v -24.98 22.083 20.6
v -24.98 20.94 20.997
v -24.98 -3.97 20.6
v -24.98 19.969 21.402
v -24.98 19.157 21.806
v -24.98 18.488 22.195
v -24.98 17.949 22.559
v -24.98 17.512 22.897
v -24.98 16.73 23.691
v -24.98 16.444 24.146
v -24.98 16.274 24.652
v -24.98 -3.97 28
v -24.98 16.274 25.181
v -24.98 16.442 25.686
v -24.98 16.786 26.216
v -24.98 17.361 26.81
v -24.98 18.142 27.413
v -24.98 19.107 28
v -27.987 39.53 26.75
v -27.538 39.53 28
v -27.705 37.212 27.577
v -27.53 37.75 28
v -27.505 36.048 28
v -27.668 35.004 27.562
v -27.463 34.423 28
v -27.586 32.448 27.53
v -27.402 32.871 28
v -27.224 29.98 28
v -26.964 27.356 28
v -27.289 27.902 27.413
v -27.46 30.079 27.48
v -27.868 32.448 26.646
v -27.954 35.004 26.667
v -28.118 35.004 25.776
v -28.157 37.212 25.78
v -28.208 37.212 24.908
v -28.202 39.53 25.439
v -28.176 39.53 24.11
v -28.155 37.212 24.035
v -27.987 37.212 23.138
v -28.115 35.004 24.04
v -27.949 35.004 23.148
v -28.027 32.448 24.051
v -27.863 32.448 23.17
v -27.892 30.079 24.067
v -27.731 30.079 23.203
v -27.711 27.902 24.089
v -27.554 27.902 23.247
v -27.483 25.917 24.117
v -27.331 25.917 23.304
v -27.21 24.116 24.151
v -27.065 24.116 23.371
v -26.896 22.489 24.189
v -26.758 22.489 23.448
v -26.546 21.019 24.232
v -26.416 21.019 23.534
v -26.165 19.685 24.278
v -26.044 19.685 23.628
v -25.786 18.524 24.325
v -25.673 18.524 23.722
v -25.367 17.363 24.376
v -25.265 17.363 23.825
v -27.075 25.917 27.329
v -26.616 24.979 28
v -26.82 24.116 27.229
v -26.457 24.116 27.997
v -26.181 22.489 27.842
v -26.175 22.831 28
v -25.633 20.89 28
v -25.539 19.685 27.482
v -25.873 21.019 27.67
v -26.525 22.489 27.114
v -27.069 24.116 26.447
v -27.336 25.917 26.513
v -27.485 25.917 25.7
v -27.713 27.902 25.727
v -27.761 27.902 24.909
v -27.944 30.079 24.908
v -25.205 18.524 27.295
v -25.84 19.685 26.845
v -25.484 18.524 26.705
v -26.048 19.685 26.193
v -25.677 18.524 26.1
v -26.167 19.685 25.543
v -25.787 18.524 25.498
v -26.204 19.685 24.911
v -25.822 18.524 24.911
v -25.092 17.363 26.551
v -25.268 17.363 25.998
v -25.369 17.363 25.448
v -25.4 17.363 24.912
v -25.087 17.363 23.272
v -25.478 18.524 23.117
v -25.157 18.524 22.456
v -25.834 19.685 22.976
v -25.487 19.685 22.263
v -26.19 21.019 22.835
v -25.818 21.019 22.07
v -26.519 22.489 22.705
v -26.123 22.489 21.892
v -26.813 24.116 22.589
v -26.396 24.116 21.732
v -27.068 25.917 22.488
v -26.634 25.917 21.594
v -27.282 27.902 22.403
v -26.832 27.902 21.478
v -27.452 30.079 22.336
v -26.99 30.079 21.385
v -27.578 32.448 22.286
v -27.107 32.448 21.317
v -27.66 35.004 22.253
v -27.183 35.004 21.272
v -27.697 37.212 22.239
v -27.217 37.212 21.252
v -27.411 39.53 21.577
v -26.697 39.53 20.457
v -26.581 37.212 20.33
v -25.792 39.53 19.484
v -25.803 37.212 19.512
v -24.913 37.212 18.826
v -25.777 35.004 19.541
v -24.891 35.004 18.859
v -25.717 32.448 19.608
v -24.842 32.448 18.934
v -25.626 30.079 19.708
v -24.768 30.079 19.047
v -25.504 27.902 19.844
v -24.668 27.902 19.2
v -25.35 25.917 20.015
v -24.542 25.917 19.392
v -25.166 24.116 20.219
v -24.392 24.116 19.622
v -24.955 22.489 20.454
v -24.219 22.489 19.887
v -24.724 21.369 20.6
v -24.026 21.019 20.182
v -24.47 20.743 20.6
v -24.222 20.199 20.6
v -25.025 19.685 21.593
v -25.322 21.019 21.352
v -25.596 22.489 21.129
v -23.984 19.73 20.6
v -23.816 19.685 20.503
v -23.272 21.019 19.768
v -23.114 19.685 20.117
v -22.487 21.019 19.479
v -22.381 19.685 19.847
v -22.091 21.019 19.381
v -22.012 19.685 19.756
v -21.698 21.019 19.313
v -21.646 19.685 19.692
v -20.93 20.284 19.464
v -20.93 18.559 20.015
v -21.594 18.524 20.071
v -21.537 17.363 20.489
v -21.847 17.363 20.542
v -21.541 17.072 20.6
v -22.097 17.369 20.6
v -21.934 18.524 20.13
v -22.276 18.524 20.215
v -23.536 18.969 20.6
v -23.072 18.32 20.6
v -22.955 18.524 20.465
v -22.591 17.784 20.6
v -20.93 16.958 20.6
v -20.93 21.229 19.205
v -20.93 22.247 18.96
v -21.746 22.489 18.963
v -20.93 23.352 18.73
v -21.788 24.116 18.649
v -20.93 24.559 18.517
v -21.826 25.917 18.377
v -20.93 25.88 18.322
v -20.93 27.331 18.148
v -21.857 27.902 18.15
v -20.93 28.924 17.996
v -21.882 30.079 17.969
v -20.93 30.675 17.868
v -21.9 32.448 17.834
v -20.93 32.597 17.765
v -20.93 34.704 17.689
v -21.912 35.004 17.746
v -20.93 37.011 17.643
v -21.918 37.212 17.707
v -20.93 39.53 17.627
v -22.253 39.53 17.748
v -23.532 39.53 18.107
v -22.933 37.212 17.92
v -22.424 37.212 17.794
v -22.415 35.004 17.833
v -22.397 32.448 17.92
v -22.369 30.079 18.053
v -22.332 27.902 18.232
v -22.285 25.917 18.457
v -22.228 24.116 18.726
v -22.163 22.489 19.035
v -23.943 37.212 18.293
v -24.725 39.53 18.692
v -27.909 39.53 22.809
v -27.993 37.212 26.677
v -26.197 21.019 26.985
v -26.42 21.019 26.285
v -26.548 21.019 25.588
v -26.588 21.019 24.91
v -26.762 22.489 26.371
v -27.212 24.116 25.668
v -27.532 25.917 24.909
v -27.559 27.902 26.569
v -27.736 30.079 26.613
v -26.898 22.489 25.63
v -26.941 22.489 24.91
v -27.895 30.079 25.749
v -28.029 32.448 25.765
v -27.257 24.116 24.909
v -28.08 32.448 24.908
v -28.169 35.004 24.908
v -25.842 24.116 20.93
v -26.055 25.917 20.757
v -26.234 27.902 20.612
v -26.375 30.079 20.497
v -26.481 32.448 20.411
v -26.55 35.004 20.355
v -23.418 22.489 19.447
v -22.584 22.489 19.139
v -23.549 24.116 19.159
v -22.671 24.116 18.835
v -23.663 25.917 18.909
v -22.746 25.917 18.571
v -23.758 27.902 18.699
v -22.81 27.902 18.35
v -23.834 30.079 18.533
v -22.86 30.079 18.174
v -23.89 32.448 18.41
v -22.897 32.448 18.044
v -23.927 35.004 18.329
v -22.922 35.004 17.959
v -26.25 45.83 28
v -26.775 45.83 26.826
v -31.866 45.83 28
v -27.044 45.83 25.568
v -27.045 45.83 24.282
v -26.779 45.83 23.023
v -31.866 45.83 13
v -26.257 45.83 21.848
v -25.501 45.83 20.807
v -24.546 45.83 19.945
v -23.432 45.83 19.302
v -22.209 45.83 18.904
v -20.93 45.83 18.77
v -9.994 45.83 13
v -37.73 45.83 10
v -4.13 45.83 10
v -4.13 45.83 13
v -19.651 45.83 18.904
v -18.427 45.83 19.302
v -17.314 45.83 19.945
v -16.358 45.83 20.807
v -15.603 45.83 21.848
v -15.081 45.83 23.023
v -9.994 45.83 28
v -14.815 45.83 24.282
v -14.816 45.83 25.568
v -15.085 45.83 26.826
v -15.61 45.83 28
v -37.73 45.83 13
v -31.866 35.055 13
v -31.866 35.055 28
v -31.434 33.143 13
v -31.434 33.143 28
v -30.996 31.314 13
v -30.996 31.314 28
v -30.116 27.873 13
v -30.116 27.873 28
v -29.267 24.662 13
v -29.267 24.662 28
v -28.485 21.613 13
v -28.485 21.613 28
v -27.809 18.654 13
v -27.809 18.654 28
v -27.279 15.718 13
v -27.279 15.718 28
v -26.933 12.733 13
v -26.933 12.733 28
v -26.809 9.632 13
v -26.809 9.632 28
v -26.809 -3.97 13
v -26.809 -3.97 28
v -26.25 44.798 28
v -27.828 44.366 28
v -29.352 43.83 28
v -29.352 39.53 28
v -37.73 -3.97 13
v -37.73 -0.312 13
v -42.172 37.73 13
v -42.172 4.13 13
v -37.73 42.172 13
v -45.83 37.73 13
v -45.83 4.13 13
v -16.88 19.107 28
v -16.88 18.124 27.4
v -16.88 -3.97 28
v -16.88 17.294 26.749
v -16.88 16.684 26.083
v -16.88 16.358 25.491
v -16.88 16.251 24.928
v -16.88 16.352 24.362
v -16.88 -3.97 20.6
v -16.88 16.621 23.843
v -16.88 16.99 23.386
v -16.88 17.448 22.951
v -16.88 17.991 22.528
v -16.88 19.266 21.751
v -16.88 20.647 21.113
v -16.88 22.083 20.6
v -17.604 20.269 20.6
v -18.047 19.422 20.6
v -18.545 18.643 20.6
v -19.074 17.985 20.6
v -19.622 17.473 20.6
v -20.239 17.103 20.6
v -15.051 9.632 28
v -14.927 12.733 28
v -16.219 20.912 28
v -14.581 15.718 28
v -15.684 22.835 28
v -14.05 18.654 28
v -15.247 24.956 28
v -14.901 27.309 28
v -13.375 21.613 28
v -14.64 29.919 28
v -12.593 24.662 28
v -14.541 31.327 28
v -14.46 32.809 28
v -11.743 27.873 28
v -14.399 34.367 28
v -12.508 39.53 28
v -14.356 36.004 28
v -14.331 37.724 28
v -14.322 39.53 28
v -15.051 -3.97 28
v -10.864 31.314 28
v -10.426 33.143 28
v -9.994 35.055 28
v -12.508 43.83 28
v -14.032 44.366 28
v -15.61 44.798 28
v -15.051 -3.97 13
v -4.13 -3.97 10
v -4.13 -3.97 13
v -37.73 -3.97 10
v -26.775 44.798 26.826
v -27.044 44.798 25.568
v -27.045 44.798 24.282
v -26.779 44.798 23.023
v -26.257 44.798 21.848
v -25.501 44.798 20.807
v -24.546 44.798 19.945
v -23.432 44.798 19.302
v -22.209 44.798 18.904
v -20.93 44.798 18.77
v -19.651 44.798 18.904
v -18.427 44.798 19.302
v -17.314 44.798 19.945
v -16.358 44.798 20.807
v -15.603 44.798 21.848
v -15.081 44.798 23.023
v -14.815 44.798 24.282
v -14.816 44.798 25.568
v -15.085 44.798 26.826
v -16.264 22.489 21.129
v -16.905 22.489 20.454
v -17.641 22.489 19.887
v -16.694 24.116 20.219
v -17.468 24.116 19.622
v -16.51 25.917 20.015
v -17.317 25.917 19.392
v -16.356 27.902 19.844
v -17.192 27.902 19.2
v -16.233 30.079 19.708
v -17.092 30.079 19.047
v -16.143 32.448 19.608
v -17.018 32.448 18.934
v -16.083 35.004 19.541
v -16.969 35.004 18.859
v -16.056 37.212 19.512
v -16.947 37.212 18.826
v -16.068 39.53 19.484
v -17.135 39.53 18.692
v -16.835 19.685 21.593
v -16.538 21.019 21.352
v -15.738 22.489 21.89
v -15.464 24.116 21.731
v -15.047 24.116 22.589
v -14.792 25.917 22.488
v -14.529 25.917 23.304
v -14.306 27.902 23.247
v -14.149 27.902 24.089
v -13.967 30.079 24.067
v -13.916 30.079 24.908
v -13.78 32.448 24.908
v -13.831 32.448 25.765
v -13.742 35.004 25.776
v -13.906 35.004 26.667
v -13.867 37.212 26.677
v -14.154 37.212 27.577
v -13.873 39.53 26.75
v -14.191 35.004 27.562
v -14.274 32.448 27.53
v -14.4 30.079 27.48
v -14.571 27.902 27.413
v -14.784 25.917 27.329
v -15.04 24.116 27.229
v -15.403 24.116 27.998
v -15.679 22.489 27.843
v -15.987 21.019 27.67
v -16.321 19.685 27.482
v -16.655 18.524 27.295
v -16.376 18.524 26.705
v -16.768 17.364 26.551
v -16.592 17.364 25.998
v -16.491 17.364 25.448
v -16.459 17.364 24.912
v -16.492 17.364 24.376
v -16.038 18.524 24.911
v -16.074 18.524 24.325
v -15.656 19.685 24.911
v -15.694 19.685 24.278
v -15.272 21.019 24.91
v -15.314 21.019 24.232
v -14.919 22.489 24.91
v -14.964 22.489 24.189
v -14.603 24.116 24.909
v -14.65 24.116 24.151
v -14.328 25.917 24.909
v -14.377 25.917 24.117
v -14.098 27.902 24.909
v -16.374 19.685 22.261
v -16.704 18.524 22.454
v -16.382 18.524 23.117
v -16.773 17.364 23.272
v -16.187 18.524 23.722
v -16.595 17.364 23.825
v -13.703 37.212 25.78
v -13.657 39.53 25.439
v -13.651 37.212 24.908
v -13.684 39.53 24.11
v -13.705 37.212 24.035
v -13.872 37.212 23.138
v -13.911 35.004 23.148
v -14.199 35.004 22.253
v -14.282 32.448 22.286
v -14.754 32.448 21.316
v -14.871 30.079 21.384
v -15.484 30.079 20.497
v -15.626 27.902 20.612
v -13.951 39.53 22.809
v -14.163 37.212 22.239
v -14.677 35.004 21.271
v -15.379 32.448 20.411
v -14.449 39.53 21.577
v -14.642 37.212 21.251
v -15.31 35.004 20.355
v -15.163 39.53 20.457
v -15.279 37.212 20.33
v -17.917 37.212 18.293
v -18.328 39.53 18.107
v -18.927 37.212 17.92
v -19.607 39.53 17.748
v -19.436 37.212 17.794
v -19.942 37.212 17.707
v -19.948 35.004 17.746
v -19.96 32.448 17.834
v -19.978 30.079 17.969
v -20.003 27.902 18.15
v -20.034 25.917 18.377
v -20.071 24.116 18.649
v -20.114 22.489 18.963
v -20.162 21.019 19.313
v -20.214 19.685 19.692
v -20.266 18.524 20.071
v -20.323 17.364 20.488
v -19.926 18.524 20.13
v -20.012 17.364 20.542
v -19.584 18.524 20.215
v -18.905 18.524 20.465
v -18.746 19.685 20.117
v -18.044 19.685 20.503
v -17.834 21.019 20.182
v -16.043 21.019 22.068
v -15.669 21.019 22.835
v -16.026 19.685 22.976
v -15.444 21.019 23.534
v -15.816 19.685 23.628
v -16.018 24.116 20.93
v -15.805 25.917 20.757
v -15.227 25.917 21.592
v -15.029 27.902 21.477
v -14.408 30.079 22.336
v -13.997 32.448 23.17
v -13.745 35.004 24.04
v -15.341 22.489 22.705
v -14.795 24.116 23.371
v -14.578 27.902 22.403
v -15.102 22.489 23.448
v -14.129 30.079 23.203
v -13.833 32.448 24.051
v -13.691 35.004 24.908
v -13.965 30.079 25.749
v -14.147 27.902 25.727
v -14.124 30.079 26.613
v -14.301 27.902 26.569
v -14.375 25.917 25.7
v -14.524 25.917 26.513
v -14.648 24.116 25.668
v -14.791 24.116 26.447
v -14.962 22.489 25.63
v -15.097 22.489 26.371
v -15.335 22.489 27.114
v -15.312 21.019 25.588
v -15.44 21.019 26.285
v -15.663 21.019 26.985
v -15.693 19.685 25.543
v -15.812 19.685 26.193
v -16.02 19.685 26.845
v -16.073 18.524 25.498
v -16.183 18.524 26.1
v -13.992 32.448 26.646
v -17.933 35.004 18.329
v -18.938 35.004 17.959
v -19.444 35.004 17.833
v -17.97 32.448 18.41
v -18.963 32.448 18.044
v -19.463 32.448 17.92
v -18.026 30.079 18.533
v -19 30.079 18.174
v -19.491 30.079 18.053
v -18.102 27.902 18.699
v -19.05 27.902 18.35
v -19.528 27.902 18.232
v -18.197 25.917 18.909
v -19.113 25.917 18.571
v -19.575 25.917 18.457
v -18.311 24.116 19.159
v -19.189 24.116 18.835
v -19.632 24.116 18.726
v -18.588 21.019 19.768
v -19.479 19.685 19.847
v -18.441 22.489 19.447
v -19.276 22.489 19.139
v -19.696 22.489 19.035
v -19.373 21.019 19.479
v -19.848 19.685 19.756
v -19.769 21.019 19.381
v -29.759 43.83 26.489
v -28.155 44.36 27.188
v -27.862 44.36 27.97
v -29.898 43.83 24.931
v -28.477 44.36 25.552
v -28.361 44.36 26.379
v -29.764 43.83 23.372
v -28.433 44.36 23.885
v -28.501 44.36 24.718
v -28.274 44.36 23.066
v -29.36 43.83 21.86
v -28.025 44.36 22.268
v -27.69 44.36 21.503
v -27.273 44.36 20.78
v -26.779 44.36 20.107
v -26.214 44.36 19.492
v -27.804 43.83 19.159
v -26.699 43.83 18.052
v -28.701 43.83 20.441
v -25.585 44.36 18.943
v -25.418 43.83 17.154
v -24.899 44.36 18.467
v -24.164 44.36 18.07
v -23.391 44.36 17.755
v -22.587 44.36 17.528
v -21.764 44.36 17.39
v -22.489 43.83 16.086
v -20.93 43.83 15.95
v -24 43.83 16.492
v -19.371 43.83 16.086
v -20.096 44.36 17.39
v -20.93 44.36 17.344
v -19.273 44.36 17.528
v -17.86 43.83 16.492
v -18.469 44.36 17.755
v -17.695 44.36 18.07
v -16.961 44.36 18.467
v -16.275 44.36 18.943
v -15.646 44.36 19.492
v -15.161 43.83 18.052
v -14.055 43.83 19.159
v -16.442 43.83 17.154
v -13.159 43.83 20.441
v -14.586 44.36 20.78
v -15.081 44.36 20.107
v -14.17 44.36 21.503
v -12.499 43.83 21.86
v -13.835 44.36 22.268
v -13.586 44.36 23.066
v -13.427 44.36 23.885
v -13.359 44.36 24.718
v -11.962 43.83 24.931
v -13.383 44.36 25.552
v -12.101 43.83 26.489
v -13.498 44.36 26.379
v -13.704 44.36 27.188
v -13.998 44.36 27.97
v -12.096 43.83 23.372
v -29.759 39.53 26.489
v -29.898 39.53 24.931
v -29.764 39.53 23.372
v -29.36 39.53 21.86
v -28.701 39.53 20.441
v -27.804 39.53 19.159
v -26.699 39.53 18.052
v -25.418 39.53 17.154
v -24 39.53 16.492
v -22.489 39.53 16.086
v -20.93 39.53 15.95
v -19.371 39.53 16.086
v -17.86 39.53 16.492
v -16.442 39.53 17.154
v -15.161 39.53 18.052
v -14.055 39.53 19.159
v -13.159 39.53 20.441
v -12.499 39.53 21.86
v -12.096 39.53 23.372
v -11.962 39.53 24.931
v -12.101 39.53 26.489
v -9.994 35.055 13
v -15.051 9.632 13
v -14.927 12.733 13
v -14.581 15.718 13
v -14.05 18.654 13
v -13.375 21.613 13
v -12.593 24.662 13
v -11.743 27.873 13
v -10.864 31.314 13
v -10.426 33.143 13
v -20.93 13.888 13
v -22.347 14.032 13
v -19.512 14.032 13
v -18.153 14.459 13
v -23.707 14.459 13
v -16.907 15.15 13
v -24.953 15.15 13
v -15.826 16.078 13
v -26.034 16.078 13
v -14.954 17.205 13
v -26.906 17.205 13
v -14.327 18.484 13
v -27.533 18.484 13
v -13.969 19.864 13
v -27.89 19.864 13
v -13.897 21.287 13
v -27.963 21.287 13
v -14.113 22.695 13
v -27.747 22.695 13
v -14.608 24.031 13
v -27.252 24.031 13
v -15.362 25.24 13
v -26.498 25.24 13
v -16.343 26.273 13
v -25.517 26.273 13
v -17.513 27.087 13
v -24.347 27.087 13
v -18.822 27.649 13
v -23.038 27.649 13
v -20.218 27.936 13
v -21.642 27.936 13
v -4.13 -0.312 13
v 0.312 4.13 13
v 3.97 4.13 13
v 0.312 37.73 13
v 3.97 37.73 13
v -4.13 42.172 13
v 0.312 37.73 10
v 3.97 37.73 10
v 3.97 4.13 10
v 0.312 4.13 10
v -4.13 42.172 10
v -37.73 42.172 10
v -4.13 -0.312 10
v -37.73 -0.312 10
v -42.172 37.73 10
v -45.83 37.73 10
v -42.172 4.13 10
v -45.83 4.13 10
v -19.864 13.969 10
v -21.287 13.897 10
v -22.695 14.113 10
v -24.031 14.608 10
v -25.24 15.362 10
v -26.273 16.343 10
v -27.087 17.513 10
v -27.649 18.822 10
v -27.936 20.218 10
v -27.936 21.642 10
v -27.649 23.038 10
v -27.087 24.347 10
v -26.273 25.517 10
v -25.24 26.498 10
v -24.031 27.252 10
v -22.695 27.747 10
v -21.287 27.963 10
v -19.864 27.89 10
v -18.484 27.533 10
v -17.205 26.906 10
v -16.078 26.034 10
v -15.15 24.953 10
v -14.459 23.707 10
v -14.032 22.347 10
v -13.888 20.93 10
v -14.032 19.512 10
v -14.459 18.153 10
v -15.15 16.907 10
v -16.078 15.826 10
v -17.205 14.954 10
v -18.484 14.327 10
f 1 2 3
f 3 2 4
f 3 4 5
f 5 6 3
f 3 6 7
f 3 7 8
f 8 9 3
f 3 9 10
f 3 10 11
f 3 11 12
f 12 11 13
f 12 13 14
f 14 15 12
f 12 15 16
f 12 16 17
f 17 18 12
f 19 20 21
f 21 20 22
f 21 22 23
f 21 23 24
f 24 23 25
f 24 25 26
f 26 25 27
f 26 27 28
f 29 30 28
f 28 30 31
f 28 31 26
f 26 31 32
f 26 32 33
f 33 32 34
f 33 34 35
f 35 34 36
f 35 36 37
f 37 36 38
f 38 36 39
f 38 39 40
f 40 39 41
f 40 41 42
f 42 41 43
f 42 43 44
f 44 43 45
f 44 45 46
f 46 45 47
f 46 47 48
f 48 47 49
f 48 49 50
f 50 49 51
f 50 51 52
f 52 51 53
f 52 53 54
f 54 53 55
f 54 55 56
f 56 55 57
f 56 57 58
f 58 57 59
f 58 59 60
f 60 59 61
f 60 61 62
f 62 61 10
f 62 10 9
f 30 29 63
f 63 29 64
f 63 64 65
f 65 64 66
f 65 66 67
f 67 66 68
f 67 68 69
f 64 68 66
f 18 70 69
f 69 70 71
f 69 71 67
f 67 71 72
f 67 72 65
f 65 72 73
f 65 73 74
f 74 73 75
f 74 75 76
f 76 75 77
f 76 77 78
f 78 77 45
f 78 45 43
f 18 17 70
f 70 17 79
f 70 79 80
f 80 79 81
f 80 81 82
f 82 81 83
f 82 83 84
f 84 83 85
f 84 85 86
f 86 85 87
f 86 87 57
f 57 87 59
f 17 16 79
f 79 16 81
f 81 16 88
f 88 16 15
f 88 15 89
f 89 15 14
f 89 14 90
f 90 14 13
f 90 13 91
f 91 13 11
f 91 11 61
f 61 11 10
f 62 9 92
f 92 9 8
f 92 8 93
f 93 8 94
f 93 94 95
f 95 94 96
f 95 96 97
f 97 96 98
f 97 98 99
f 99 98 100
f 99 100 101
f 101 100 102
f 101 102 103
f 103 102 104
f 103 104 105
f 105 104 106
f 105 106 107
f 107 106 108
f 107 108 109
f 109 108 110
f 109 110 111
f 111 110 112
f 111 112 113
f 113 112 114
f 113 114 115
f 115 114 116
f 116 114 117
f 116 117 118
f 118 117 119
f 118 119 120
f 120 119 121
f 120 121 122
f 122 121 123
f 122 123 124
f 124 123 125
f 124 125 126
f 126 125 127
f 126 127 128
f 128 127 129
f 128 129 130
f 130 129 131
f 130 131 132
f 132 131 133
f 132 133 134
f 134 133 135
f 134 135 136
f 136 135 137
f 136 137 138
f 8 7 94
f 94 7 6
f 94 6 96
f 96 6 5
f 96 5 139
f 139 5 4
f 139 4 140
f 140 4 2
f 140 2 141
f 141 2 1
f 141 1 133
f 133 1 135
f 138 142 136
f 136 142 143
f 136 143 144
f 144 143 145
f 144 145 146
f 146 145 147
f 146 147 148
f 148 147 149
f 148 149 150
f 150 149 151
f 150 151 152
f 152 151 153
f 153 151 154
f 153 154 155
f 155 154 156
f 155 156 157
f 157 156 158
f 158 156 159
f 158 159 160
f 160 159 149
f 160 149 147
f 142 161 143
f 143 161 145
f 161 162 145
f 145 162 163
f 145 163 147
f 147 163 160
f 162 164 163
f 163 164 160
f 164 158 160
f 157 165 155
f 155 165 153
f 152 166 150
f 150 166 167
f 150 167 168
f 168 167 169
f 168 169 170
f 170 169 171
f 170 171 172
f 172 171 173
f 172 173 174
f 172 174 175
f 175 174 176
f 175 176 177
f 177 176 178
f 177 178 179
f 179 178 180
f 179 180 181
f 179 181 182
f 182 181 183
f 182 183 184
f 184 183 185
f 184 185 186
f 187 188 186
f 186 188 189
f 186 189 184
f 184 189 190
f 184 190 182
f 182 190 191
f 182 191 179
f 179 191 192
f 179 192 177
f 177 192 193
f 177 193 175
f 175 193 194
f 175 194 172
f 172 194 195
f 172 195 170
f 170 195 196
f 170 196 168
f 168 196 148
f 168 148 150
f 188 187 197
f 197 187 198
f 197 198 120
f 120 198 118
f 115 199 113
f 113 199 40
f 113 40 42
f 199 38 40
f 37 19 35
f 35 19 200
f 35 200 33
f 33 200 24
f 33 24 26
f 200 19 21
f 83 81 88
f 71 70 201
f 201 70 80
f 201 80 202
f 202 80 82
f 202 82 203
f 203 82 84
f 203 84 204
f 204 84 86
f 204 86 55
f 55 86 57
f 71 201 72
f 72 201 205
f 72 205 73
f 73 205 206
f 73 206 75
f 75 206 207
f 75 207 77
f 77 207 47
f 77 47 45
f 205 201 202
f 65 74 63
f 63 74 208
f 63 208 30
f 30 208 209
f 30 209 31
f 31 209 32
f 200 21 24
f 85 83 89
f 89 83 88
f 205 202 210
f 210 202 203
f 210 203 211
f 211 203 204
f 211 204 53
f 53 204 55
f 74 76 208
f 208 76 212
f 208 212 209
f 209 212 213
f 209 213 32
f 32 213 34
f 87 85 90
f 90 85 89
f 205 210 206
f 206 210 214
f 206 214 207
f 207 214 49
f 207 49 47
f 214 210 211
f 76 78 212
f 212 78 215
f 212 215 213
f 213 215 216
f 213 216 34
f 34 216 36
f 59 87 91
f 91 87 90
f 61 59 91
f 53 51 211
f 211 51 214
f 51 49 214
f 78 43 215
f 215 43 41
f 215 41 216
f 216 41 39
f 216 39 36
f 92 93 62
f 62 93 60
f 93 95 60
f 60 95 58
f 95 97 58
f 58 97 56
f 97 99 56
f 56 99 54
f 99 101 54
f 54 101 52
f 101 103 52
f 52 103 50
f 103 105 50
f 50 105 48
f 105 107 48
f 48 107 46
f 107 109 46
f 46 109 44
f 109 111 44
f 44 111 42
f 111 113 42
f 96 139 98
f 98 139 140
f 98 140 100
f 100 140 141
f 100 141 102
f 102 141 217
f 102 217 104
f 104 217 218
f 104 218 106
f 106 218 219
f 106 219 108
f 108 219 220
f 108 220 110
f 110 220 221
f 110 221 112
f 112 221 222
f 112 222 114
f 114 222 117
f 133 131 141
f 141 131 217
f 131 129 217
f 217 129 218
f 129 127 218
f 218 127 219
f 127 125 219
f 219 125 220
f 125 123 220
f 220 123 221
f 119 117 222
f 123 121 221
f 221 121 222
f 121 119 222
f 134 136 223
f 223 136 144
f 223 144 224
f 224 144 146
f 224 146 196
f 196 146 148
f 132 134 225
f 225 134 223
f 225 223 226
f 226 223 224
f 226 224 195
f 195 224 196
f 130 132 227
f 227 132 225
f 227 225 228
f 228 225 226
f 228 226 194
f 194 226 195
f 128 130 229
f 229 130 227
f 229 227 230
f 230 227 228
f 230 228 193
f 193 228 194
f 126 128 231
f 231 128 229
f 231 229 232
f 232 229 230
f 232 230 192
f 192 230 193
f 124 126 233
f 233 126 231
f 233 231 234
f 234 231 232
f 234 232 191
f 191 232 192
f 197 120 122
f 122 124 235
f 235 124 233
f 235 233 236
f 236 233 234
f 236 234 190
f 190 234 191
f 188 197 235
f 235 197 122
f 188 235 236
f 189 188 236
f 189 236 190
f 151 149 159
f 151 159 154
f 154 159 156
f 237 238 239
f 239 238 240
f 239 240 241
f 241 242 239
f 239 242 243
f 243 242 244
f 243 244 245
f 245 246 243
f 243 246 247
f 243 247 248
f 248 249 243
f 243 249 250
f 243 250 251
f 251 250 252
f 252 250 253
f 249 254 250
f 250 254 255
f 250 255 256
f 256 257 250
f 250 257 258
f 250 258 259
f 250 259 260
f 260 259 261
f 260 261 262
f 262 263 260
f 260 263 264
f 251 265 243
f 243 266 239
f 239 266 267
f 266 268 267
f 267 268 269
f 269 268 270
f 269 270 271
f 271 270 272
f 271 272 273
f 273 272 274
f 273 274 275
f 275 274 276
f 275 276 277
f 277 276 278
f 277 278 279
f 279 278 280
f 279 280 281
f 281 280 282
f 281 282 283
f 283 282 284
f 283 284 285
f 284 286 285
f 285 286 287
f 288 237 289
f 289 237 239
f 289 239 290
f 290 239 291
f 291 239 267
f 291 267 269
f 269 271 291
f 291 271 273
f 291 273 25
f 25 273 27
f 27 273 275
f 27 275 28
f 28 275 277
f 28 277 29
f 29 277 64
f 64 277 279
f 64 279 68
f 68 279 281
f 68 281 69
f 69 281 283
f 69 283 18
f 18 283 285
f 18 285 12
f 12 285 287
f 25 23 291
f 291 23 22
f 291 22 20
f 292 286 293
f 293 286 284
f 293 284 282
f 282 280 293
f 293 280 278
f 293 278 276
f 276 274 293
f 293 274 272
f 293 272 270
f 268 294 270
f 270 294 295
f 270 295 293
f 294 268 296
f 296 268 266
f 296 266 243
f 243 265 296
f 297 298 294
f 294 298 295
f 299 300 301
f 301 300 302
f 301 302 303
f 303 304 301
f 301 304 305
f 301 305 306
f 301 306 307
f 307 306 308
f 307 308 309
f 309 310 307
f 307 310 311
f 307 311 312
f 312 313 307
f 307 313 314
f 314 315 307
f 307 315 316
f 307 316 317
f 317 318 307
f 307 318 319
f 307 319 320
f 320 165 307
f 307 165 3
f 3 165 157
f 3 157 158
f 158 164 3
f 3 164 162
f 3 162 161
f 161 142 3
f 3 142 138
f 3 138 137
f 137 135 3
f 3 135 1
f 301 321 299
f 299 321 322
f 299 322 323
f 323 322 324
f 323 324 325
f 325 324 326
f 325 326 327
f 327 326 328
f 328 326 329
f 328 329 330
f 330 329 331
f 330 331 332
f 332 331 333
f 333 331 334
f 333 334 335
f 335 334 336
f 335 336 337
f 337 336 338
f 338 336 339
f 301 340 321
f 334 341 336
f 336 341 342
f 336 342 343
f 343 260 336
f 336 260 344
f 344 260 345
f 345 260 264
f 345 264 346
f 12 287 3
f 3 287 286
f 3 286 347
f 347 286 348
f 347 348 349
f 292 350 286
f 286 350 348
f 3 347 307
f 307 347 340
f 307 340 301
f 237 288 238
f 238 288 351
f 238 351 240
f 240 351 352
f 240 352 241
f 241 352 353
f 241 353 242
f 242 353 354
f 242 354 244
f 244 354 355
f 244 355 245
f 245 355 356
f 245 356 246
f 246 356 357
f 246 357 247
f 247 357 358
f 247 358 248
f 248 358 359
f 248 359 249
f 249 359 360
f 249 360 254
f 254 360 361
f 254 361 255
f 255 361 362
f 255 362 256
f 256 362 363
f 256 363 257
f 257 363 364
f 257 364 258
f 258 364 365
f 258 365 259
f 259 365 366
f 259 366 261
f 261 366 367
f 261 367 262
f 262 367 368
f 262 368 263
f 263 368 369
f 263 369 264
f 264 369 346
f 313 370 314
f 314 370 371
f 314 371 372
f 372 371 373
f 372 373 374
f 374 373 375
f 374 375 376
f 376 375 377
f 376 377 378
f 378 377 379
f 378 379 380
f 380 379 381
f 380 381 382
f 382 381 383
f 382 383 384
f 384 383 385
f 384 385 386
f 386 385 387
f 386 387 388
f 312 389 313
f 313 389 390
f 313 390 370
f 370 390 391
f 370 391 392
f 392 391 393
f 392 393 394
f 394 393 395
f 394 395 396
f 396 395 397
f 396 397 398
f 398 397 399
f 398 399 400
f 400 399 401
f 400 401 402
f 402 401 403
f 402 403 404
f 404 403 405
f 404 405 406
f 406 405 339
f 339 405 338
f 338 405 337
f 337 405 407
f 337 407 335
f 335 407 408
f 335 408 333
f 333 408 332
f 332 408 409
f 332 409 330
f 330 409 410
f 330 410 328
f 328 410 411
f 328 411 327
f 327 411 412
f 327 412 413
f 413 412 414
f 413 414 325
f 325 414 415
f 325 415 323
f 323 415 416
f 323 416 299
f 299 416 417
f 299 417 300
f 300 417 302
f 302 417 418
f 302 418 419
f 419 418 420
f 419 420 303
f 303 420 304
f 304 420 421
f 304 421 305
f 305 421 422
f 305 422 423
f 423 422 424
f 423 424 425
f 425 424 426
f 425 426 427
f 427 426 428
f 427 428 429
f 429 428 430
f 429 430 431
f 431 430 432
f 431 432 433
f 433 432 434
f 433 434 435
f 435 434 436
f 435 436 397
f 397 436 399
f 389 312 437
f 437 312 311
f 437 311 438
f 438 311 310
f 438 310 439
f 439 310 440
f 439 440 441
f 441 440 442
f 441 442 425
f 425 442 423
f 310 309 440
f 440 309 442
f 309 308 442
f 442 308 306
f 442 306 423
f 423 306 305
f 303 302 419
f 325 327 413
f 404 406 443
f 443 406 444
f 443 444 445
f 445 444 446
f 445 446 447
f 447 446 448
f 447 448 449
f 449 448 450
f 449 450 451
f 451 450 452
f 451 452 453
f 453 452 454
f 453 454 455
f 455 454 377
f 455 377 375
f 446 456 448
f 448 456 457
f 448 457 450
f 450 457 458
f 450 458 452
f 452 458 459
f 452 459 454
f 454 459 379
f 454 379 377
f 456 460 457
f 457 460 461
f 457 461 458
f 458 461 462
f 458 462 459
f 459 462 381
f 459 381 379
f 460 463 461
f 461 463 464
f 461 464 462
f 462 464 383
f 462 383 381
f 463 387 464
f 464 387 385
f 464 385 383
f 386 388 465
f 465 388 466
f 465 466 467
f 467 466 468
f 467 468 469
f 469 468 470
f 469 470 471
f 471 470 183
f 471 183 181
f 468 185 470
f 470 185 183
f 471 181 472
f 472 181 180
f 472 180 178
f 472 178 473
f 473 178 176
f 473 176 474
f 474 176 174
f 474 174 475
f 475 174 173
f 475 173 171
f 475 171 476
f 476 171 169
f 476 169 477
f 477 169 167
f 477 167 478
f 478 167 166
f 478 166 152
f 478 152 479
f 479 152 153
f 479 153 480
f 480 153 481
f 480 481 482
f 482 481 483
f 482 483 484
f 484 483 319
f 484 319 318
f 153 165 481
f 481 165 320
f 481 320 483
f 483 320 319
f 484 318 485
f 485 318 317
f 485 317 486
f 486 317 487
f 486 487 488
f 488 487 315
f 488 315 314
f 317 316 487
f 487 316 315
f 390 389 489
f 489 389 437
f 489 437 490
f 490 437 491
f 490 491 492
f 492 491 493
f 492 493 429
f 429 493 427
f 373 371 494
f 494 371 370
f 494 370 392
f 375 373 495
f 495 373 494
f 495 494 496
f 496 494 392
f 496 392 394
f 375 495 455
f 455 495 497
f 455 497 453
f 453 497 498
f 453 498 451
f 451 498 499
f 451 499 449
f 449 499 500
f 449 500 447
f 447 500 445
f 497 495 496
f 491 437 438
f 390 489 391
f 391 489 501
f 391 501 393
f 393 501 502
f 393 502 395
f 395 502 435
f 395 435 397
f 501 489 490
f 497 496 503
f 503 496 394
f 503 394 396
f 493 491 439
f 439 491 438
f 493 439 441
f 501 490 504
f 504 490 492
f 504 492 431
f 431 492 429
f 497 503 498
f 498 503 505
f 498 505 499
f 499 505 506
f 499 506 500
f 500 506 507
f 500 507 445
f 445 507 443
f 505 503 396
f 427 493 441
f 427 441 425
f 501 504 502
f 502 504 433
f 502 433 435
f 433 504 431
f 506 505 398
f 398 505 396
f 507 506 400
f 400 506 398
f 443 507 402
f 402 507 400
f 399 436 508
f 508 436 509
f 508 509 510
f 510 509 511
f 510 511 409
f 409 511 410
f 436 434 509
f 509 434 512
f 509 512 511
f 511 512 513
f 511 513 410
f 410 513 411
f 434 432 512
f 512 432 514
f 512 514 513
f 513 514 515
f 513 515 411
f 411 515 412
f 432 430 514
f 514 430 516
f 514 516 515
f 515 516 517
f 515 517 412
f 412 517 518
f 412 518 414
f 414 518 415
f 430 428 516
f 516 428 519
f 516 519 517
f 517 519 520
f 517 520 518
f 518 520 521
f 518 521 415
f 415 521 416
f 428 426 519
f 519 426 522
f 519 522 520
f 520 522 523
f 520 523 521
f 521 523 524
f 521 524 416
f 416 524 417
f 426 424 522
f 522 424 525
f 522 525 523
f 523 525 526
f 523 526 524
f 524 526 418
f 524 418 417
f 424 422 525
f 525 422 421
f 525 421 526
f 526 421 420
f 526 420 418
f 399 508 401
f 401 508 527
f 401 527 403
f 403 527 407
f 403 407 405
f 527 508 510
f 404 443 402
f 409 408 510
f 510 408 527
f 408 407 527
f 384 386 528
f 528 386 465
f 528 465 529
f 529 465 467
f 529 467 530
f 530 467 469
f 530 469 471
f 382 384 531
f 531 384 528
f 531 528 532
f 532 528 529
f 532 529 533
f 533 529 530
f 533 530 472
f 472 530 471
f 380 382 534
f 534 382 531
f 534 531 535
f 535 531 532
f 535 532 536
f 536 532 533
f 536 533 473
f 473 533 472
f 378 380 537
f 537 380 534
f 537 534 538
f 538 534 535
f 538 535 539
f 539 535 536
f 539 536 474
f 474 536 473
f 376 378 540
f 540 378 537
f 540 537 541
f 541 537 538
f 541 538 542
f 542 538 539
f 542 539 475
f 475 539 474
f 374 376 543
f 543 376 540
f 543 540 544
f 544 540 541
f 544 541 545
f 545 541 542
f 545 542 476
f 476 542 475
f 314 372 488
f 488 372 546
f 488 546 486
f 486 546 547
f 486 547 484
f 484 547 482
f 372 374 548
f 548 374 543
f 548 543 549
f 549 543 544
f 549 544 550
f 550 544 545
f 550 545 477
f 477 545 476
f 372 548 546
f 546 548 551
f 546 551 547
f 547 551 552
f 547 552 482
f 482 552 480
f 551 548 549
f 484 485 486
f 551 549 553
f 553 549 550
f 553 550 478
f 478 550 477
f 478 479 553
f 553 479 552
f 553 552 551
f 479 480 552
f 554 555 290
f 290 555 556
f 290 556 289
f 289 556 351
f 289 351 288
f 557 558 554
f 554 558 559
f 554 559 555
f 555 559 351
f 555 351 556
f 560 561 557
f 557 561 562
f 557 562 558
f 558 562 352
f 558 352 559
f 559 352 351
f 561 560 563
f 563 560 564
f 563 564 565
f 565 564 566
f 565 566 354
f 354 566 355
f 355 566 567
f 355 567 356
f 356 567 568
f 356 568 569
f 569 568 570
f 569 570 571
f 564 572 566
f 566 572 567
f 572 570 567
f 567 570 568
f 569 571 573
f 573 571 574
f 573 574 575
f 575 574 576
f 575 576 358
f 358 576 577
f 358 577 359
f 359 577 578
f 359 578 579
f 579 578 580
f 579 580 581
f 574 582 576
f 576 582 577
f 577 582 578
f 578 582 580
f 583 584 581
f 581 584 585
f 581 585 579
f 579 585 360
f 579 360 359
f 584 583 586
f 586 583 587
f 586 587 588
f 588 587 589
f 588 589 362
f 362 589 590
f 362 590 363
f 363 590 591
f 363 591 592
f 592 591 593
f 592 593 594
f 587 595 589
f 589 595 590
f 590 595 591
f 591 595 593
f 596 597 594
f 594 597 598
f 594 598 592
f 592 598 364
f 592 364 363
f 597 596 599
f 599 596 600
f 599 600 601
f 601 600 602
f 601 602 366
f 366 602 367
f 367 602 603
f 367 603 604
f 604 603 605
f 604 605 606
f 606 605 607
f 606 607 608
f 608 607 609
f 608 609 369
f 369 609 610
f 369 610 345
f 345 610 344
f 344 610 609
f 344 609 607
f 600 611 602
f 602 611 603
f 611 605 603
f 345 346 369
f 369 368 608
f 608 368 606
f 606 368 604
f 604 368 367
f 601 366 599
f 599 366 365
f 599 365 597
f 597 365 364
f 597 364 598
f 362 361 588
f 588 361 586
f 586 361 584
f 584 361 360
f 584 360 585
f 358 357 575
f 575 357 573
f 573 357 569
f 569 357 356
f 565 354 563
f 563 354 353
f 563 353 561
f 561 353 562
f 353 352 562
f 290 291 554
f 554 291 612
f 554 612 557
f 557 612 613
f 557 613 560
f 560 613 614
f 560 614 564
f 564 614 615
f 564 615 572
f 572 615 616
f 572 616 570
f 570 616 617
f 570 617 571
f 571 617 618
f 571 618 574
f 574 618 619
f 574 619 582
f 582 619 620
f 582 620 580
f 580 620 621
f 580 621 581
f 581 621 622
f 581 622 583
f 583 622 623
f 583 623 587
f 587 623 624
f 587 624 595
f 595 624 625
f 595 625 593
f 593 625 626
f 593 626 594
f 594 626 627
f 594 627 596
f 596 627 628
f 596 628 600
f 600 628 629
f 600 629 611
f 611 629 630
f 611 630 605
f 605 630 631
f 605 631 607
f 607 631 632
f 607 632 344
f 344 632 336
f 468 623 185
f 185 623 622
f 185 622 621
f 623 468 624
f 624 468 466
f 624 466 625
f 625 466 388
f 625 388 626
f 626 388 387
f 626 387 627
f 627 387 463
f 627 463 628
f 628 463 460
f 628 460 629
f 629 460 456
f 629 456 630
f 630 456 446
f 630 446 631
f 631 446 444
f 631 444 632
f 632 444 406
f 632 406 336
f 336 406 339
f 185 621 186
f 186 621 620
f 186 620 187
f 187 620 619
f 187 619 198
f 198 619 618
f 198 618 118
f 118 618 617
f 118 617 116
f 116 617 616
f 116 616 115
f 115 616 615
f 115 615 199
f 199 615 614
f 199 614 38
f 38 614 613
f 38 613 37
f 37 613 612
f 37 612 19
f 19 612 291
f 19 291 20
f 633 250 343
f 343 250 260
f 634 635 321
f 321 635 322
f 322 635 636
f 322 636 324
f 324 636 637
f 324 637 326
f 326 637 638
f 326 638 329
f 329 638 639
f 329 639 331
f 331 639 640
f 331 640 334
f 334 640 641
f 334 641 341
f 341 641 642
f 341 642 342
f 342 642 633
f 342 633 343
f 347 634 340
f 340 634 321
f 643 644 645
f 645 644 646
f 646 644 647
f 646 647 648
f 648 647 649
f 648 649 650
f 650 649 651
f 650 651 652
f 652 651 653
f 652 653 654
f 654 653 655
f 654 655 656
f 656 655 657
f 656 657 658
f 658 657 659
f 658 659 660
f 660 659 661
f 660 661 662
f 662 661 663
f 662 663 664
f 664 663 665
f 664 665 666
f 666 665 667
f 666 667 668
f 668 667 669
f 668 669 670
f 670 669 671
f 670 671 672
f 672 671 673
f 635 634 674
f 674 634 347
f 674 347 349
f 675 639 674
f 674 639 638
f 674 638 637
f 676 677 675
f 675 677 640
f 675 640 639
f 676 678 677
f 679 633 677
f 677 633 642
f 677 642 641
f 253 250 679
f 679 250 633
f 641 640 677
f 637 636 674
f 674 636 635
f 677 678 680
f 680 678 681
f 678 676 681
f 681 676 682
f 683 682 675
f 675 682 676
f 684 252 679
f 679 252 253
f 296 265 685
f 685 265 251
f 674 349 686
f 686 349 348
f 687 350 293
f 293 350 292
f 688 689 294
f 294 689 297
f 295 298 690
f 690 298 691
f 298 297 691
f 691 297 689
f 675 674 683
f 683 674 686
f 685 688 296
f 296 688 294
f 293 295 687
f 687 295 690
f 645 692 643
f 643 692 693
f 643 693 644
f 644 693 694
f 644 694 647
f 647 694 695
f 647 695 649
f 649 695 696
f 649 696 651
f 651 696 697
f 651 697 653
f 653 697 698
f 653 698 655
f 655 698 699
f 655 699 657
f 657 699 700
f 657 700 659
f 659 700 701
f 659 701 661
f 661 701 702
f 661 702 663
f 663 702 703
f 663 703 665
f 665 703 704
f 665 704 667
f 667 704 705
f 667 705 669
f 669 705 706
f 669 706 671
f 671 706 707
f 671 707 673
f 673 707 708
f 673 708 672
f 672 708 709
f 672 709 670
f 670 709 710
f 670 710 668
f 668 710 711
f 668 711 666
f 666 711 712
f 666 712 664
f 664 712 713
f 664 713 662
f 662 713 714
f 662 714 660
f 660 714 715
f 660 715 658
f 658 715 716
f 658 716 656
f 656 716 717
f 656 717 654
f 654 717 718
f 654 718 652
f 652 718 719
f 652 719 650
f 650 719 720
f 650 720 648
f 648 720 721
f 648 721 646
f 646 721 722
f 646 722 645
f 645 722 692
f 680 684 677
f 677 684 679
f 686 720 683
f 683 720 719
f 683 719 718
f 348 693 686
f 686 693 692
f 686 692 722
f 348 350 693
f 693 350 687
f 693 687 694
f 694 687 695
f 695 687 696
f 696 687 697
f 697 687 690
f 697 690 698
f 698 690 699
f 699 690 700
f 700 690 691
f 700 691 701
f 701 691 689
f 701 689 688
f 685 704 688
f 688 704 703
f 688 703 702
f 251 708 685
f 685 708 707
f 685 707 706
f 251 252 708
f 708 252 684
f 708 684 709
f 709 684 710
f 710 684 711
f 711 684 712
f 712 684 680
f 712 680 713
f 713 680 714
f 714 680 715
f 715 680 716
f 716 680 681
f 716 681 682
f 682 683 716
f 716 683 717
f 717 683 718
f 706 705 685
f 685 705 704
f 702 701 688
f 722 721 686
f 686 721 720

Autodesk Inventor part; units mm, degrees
ref_plane "YZ Plane" through (0, 0, 0) normal (1, 0, 0) x (0, 1, 0)
ref_plane "Work Plane1" through (0, 0, 10) normal (0, 0, 1) x (1, 0, 0)
sketch "Sketch1" plane through (0, 0, 10) normal (0, 0, 1) x (1, 0, 0)
  line L0 (-4.0299, -0.3538) -> (-2.2322, 1.4439) construction
  arc A0 (-1.4439, 2.2322) -> (-2.2322, 1.4439) centre (-0.9299, 0.9299) ccw construction
  line L1 (-1.4439, 2.2322) -> (0.3538, 4.0299) construction
  line L2 (-37.8299, 42.2137) -> (-37.8299, 45.8299) construction
  line L3 (-37.8299, 45.8299) -> (-4.0299, 45.8299) construction
  line L4 (-4.0299, 45.8299) -> (-4.0299, 42.2137) construction
  line L5 (-4.0299, 4.0299) -> (0.3538, 4.0299) projected
  circle A1 centre (-20.9299, 20.9299) radius 17.5 projected
  line L6 (-20.9299, 58.9723) -> (17.1124, 20.9299) construction
  line L7 (17.1124, 20.9299) -> (-20.9299, -17.1124) construction
  line L8 (-20.9299, -17.1124) -> (-58.9723, 20.9299) construction
  line L9 (-58.9723, 20.9299) -> (-20.9299, 58.9723) construction
  line L10 (-20.9299, 58.9723) -> (-20.9299, -17.1124) construction
  line L11 (17.1124, 20.9299) -> (-58.9723, 20.9299) construction
  line L12 (-20.9299, 58.9723) -> (32.8701, 58.9723) construction
  line L13 (-43.4299, 43.4299) -> (1.5701, 43.4299) construction
  line L14 (1.5701, 43.4299) -> (1.5701, -1.5701) construction
  line L15 (1.5701, -1.5701) -> (-43.4299, -1.5701) construction
  line L16 (-43.4299, -1.5701) -> (-43.4299, 43.4299) construction
  line L17 (-43.4299, 43.4299) -> (1.5701, -1.5701) construction
  line L18 (1.5701, 43.4299) -> (-43.4299, -1.5701) construction
  line L19 (-43.4299, 5.3876) -> (-43.4299, 36.4723)
  line L20 (-43.4299, 36.4723) -> (-36.4723, 43.4299)
  line L21 (-36.4723, 43.4299) -> (-5.3876, 43.4299)
  line L22 (-5.3876, 43.4299) -> (1.5701, 36.4723)
  line L23 (1.5701, 36.4723) -> (1.5701, 5.3876)
  line L24 (1.5701, 5.3876) -> (-5.3876, -1.5701)
  line L25 (-5.3876, -1.5701) -> (-36.4723, -1.5701)
  line L26 (-36.4723, -1.5701) -> (-43.4299, 5.3876)
  line L27 (-4.0299, 42.2137) -> (-37.8299, 42.2137) projected
  line L28 (-4.0299, -0.3538) -> (-4.0299, 4.0299) projected
  circle A2 centre (-20.9299, 20.9299) radius 7.0417
  point P0 (-37.8299, 4.0299)
  dimension "d18" = 53.8
  dimension "d19" = 45
  dimension "d20" = 53.8
  dimension "d21" = 45
  dimension "d22" = 45
extrude "Extrusion1" add sketch "Sketch1" along normal blind 3 contours L28 L24 L25 L26 L19 L20 L27 L22 L23 L5 | L5 L24 L28 | L27 L20 L21 L22 | A1
sketch "Sketch3" plane through (0, 0, 10) normal (0, 0, -1) x (-1, 0, 0)
  line L0 (37.8299, -0.4701) -> (37.8299, 4.0299) construction
  line L1 (4.0299, 4.0299) -> (4.0299, -0.4701) construction
  line L2 (37.8299, -0.4701) -> (37.8299, 1.1886) construction
  line L3 (4.0299, -3.9701) -> (4.0299, -0.3538) construction
  line L4 (45.8299, 4.0299) -> (42.2137, 4.0299) construction
  line L5 (-0.3538, 4.0299) -> (-3.9701, 4.0299) construction
  line L6 (-3.9701, 37.8299) -> (-0.3538, 37.8299) construction
  line L7 (4.0299, 42.2137) -> (4.0299, 45.8299) construction
  line L8 (37.8299, 45.8299) -> (37.8299, 42.2137) construction
  line L9 (42.2137, 37.8299) -> (45.8299, 37.8299) construction
  line L10 (37.8299, 37.7299) -> (45.8299, 37.7299)
  line L11 (45.8299, 37.7299) -> (45.8299, 4.1299)
  line L12 (45.8299, 4.1299) -> (37.8299, 4.1299)
  line L13 (37.8299, 4.1299) -> (37.8299, 37.7299)
  line L14 (37.7299, 4.0299) -> (4.1299, 4.0299)
  line L15 (4.1299, 4.0299) -> (4.1299, -3.9701)
  line L16 (4.1299, -3.9701) -> (37.7299, -3.9701)
  line L17 (37.7299, -3.9701) -> (37.7299, 4.0299)
  line L18 (4.0299, 4.1299) -> (-3.9701, 4.1299)
  line L19 (-3.9701, 4.1299) -> (-3.9701, 37.7299)
  line L20 (-3.9701, 37.7299) -> (4.0299, 37.7299)
  line L21 (4.0299, 37.7299) -> (4.0299, 4.1299)
  line L22 (4.1299, 37.8299) -> (37.7299, 37.8299)
  line L23 (37.7299, 37.8299) -> (37.7299, 45.8299)
  line L24 (37.7299, 45.8299) -> (4.1299, 45.8299)
  line L25 (4.1299, 45.8299) -> (4.1299, 37.8299)
  point P0 (0, 0)
  dimension "d23" = 0.1
  dimension "d24" = 0.1
  dimension "d25" = 0.1
  dimension "d26" = 0.1
  dimension "d27" = 0.1
extrude "Extrusion3" add sketch "Sketch3" against normal up to surface (3 mm away)
ref_plane "Work Plane4" through (-20.9299, 20.9299, 36.9) normal (-1, 0, 0) x (0, 1, 0)
sketch "Sketch11" plane through (-20.9299, 20.9299, 36.9) normal (-1, 0, 0) x (0, 1, 0)
  point P0 (-20.9299, 36.9)
sketch "Sketch12" plane through (0, 0, 13) normal (0, 0, 1) x (1, 0, 0)
  line L0 (-11.9799, 39.5299) -> (-11.9799, 43.8299) construction
  line L1 (-17.0799, -2.9701) -> (-17.0799, 2.0299) construction
  line L2 (-37.7299, 45.8299) -> (-4.1299, 45.8299) projected
  line L3 (-20.9299, 45.8299) -> (-20.9299, -3.9701)
  line L4 (-4.1299, -3.9701) -> (-37.7299, -3.9701) projected
  line L5 (-20.9299, -3.9701) -> (-15.0511, -3.9701)
  line L6 (-15.0511, -3.9701) -> (-15.0511, 9.6316)
  line L7 (-20.9299, 45.8299) -> (-9.9943, 45.8299)
  line L8 (-9.9943, 45.8299) -> (-9.9943, 35.0551)
  line L9 (-9.9943, 35.0551) -> (-12.2675, 24.6166) construction
  line L10 (-12.2675, 24.6166) -> (-15.0511, 18.1216) construction
  line L11 (-15.0511, 18.1216) -> (-15.0511, 9.6316) construction
  spline S0 degree 3 poles (-9.9943, 35.0551) (-12.2675, 24.6166) (-15.0511, 18.1216) (-15.0511, 9.6316) knots 1 1 1 1 2 2 2 2
  point P0 (0, 0)
extrude "Extrusion10" add sketch "Sketch12" along normal blind 15
sketch "Sketch13" plane through (-20.9299, 13.8882, 13) normal (-1, 0, 0) x (0, 0, 1)
  line L0 (34.8, 31.9417) -> (-5, 31.9417) projected
  line L1 (36.8, -17.8583) -> (-5, -17.8583) construction
  line L2 (0, -17.8583) -> (15, -17.8583) projected
  line L3 (11.9179, -17.8583) -> (11.9179, 31.9417)
  line L4 (-5, 29.9417) -> (34.8, 29.9417) construction
  line L5 (16, -16.8583) -> (16, -11.8583) construction
  line L6 (9.0528, -16.8583) -> (9.0528, -11.8583) construction
  line L7 (9.709, -7.8145) -> (9.709, -17.8583)
  line L8 (9.709, -17.8583) -> (11.9179, -17.8583)
  arc A0 (5.7696, 30.9102) -> (2.95, 29.9417) centre (11.845, 8.6329) ccw
  line L9 (11.9179, 31.9417) -> (7.5, 31.9417)
  line L10 (0, 31.9417) -> (15, 31.9417) projected
  line L11 (9.709, -17.8583) -> (11.9179, -17.8583)
  line L12 (2.95, 29.9417) -> (2.95, 25.6417)
  line L13 (2.95, 25.6417) -> (4.6268, 25.6417)
  line L14 (7.5, 31.9417) -> (5.7696, 31.9417)
  line L15 (5.7696, 30.9102) -> (5.7696, 31.9417)
  line L16 (4.6268, 25.6417) -> (4.6268, 11.6155) construction
  line L17 (0, 21.1669) -> (15, 21.1669) projected
  line L18 (4.6268, 11.6155) -> (5.7696, 2.2174) construction
  line L19 (5.7696, 2.2174) -> (9.709, 3.7875) construction
  line L20 (9.709, 3.7875) -> (9.709, -7.8145) construction
  spline S0 degree 4 poles (4.6268, 25.6417) (4.6268, 11.6155) (5.7696, 2.2174) (9.709, 3.7875) (9.709, -7.8145) knots 1 1 1 1 1 2 2 2 2 2
  point P0 (-13, -13.8882)
  dimension "d69" = 4.4179
revolve "Revolution1" cut sketch "Sketch13" angle 360 about axis through (-20.9299, -3.9701, 24.9179) along (0, 1, 0)
sketch "Sketch14" plane through (-37.7299, -3.9701, 10) normal (0, -1, 0) x (1, 0, 0)
  circle A0 centre (16.8, 14.9) radius 2.8472 projected
  line L0 (12.95, 19) -> (20.65, 19) projected
  line L1 (12.95, 10.8) -> (12.95, 19) projected
  line L2 (20.65, 10.8) -> (12.95, 10.8) projected
  line L3 (20.65, 19) -> (20.65, 10.8) projected
  line L4 (20.85, 19.2) -> (12.75, 19.2)
  line L5 (12.75, 19.2) -> (12.75, 10.6)
  line L6 (12.75, 10.6) -> (20.85, 10.6)
  line L7 (20.85, 10.6) -> (20.85, 19.2)
  point P0 (37.7299, -10)
  dimension "d66" = 0.2
extrude "Extrusion11" cut sketch "Sketch14" against normal through all contours A0 | L0 L3 L2 L1 | L7 L6 L5 L4
mirror "Mirror1" about plane through (-20.9299, 45.8299, 13) normal (-1, 0, 0) of "Extrusion10", "Revolution1", "Extrusion11"
properties part number "20_Cube_Insert_Beamexpander"
